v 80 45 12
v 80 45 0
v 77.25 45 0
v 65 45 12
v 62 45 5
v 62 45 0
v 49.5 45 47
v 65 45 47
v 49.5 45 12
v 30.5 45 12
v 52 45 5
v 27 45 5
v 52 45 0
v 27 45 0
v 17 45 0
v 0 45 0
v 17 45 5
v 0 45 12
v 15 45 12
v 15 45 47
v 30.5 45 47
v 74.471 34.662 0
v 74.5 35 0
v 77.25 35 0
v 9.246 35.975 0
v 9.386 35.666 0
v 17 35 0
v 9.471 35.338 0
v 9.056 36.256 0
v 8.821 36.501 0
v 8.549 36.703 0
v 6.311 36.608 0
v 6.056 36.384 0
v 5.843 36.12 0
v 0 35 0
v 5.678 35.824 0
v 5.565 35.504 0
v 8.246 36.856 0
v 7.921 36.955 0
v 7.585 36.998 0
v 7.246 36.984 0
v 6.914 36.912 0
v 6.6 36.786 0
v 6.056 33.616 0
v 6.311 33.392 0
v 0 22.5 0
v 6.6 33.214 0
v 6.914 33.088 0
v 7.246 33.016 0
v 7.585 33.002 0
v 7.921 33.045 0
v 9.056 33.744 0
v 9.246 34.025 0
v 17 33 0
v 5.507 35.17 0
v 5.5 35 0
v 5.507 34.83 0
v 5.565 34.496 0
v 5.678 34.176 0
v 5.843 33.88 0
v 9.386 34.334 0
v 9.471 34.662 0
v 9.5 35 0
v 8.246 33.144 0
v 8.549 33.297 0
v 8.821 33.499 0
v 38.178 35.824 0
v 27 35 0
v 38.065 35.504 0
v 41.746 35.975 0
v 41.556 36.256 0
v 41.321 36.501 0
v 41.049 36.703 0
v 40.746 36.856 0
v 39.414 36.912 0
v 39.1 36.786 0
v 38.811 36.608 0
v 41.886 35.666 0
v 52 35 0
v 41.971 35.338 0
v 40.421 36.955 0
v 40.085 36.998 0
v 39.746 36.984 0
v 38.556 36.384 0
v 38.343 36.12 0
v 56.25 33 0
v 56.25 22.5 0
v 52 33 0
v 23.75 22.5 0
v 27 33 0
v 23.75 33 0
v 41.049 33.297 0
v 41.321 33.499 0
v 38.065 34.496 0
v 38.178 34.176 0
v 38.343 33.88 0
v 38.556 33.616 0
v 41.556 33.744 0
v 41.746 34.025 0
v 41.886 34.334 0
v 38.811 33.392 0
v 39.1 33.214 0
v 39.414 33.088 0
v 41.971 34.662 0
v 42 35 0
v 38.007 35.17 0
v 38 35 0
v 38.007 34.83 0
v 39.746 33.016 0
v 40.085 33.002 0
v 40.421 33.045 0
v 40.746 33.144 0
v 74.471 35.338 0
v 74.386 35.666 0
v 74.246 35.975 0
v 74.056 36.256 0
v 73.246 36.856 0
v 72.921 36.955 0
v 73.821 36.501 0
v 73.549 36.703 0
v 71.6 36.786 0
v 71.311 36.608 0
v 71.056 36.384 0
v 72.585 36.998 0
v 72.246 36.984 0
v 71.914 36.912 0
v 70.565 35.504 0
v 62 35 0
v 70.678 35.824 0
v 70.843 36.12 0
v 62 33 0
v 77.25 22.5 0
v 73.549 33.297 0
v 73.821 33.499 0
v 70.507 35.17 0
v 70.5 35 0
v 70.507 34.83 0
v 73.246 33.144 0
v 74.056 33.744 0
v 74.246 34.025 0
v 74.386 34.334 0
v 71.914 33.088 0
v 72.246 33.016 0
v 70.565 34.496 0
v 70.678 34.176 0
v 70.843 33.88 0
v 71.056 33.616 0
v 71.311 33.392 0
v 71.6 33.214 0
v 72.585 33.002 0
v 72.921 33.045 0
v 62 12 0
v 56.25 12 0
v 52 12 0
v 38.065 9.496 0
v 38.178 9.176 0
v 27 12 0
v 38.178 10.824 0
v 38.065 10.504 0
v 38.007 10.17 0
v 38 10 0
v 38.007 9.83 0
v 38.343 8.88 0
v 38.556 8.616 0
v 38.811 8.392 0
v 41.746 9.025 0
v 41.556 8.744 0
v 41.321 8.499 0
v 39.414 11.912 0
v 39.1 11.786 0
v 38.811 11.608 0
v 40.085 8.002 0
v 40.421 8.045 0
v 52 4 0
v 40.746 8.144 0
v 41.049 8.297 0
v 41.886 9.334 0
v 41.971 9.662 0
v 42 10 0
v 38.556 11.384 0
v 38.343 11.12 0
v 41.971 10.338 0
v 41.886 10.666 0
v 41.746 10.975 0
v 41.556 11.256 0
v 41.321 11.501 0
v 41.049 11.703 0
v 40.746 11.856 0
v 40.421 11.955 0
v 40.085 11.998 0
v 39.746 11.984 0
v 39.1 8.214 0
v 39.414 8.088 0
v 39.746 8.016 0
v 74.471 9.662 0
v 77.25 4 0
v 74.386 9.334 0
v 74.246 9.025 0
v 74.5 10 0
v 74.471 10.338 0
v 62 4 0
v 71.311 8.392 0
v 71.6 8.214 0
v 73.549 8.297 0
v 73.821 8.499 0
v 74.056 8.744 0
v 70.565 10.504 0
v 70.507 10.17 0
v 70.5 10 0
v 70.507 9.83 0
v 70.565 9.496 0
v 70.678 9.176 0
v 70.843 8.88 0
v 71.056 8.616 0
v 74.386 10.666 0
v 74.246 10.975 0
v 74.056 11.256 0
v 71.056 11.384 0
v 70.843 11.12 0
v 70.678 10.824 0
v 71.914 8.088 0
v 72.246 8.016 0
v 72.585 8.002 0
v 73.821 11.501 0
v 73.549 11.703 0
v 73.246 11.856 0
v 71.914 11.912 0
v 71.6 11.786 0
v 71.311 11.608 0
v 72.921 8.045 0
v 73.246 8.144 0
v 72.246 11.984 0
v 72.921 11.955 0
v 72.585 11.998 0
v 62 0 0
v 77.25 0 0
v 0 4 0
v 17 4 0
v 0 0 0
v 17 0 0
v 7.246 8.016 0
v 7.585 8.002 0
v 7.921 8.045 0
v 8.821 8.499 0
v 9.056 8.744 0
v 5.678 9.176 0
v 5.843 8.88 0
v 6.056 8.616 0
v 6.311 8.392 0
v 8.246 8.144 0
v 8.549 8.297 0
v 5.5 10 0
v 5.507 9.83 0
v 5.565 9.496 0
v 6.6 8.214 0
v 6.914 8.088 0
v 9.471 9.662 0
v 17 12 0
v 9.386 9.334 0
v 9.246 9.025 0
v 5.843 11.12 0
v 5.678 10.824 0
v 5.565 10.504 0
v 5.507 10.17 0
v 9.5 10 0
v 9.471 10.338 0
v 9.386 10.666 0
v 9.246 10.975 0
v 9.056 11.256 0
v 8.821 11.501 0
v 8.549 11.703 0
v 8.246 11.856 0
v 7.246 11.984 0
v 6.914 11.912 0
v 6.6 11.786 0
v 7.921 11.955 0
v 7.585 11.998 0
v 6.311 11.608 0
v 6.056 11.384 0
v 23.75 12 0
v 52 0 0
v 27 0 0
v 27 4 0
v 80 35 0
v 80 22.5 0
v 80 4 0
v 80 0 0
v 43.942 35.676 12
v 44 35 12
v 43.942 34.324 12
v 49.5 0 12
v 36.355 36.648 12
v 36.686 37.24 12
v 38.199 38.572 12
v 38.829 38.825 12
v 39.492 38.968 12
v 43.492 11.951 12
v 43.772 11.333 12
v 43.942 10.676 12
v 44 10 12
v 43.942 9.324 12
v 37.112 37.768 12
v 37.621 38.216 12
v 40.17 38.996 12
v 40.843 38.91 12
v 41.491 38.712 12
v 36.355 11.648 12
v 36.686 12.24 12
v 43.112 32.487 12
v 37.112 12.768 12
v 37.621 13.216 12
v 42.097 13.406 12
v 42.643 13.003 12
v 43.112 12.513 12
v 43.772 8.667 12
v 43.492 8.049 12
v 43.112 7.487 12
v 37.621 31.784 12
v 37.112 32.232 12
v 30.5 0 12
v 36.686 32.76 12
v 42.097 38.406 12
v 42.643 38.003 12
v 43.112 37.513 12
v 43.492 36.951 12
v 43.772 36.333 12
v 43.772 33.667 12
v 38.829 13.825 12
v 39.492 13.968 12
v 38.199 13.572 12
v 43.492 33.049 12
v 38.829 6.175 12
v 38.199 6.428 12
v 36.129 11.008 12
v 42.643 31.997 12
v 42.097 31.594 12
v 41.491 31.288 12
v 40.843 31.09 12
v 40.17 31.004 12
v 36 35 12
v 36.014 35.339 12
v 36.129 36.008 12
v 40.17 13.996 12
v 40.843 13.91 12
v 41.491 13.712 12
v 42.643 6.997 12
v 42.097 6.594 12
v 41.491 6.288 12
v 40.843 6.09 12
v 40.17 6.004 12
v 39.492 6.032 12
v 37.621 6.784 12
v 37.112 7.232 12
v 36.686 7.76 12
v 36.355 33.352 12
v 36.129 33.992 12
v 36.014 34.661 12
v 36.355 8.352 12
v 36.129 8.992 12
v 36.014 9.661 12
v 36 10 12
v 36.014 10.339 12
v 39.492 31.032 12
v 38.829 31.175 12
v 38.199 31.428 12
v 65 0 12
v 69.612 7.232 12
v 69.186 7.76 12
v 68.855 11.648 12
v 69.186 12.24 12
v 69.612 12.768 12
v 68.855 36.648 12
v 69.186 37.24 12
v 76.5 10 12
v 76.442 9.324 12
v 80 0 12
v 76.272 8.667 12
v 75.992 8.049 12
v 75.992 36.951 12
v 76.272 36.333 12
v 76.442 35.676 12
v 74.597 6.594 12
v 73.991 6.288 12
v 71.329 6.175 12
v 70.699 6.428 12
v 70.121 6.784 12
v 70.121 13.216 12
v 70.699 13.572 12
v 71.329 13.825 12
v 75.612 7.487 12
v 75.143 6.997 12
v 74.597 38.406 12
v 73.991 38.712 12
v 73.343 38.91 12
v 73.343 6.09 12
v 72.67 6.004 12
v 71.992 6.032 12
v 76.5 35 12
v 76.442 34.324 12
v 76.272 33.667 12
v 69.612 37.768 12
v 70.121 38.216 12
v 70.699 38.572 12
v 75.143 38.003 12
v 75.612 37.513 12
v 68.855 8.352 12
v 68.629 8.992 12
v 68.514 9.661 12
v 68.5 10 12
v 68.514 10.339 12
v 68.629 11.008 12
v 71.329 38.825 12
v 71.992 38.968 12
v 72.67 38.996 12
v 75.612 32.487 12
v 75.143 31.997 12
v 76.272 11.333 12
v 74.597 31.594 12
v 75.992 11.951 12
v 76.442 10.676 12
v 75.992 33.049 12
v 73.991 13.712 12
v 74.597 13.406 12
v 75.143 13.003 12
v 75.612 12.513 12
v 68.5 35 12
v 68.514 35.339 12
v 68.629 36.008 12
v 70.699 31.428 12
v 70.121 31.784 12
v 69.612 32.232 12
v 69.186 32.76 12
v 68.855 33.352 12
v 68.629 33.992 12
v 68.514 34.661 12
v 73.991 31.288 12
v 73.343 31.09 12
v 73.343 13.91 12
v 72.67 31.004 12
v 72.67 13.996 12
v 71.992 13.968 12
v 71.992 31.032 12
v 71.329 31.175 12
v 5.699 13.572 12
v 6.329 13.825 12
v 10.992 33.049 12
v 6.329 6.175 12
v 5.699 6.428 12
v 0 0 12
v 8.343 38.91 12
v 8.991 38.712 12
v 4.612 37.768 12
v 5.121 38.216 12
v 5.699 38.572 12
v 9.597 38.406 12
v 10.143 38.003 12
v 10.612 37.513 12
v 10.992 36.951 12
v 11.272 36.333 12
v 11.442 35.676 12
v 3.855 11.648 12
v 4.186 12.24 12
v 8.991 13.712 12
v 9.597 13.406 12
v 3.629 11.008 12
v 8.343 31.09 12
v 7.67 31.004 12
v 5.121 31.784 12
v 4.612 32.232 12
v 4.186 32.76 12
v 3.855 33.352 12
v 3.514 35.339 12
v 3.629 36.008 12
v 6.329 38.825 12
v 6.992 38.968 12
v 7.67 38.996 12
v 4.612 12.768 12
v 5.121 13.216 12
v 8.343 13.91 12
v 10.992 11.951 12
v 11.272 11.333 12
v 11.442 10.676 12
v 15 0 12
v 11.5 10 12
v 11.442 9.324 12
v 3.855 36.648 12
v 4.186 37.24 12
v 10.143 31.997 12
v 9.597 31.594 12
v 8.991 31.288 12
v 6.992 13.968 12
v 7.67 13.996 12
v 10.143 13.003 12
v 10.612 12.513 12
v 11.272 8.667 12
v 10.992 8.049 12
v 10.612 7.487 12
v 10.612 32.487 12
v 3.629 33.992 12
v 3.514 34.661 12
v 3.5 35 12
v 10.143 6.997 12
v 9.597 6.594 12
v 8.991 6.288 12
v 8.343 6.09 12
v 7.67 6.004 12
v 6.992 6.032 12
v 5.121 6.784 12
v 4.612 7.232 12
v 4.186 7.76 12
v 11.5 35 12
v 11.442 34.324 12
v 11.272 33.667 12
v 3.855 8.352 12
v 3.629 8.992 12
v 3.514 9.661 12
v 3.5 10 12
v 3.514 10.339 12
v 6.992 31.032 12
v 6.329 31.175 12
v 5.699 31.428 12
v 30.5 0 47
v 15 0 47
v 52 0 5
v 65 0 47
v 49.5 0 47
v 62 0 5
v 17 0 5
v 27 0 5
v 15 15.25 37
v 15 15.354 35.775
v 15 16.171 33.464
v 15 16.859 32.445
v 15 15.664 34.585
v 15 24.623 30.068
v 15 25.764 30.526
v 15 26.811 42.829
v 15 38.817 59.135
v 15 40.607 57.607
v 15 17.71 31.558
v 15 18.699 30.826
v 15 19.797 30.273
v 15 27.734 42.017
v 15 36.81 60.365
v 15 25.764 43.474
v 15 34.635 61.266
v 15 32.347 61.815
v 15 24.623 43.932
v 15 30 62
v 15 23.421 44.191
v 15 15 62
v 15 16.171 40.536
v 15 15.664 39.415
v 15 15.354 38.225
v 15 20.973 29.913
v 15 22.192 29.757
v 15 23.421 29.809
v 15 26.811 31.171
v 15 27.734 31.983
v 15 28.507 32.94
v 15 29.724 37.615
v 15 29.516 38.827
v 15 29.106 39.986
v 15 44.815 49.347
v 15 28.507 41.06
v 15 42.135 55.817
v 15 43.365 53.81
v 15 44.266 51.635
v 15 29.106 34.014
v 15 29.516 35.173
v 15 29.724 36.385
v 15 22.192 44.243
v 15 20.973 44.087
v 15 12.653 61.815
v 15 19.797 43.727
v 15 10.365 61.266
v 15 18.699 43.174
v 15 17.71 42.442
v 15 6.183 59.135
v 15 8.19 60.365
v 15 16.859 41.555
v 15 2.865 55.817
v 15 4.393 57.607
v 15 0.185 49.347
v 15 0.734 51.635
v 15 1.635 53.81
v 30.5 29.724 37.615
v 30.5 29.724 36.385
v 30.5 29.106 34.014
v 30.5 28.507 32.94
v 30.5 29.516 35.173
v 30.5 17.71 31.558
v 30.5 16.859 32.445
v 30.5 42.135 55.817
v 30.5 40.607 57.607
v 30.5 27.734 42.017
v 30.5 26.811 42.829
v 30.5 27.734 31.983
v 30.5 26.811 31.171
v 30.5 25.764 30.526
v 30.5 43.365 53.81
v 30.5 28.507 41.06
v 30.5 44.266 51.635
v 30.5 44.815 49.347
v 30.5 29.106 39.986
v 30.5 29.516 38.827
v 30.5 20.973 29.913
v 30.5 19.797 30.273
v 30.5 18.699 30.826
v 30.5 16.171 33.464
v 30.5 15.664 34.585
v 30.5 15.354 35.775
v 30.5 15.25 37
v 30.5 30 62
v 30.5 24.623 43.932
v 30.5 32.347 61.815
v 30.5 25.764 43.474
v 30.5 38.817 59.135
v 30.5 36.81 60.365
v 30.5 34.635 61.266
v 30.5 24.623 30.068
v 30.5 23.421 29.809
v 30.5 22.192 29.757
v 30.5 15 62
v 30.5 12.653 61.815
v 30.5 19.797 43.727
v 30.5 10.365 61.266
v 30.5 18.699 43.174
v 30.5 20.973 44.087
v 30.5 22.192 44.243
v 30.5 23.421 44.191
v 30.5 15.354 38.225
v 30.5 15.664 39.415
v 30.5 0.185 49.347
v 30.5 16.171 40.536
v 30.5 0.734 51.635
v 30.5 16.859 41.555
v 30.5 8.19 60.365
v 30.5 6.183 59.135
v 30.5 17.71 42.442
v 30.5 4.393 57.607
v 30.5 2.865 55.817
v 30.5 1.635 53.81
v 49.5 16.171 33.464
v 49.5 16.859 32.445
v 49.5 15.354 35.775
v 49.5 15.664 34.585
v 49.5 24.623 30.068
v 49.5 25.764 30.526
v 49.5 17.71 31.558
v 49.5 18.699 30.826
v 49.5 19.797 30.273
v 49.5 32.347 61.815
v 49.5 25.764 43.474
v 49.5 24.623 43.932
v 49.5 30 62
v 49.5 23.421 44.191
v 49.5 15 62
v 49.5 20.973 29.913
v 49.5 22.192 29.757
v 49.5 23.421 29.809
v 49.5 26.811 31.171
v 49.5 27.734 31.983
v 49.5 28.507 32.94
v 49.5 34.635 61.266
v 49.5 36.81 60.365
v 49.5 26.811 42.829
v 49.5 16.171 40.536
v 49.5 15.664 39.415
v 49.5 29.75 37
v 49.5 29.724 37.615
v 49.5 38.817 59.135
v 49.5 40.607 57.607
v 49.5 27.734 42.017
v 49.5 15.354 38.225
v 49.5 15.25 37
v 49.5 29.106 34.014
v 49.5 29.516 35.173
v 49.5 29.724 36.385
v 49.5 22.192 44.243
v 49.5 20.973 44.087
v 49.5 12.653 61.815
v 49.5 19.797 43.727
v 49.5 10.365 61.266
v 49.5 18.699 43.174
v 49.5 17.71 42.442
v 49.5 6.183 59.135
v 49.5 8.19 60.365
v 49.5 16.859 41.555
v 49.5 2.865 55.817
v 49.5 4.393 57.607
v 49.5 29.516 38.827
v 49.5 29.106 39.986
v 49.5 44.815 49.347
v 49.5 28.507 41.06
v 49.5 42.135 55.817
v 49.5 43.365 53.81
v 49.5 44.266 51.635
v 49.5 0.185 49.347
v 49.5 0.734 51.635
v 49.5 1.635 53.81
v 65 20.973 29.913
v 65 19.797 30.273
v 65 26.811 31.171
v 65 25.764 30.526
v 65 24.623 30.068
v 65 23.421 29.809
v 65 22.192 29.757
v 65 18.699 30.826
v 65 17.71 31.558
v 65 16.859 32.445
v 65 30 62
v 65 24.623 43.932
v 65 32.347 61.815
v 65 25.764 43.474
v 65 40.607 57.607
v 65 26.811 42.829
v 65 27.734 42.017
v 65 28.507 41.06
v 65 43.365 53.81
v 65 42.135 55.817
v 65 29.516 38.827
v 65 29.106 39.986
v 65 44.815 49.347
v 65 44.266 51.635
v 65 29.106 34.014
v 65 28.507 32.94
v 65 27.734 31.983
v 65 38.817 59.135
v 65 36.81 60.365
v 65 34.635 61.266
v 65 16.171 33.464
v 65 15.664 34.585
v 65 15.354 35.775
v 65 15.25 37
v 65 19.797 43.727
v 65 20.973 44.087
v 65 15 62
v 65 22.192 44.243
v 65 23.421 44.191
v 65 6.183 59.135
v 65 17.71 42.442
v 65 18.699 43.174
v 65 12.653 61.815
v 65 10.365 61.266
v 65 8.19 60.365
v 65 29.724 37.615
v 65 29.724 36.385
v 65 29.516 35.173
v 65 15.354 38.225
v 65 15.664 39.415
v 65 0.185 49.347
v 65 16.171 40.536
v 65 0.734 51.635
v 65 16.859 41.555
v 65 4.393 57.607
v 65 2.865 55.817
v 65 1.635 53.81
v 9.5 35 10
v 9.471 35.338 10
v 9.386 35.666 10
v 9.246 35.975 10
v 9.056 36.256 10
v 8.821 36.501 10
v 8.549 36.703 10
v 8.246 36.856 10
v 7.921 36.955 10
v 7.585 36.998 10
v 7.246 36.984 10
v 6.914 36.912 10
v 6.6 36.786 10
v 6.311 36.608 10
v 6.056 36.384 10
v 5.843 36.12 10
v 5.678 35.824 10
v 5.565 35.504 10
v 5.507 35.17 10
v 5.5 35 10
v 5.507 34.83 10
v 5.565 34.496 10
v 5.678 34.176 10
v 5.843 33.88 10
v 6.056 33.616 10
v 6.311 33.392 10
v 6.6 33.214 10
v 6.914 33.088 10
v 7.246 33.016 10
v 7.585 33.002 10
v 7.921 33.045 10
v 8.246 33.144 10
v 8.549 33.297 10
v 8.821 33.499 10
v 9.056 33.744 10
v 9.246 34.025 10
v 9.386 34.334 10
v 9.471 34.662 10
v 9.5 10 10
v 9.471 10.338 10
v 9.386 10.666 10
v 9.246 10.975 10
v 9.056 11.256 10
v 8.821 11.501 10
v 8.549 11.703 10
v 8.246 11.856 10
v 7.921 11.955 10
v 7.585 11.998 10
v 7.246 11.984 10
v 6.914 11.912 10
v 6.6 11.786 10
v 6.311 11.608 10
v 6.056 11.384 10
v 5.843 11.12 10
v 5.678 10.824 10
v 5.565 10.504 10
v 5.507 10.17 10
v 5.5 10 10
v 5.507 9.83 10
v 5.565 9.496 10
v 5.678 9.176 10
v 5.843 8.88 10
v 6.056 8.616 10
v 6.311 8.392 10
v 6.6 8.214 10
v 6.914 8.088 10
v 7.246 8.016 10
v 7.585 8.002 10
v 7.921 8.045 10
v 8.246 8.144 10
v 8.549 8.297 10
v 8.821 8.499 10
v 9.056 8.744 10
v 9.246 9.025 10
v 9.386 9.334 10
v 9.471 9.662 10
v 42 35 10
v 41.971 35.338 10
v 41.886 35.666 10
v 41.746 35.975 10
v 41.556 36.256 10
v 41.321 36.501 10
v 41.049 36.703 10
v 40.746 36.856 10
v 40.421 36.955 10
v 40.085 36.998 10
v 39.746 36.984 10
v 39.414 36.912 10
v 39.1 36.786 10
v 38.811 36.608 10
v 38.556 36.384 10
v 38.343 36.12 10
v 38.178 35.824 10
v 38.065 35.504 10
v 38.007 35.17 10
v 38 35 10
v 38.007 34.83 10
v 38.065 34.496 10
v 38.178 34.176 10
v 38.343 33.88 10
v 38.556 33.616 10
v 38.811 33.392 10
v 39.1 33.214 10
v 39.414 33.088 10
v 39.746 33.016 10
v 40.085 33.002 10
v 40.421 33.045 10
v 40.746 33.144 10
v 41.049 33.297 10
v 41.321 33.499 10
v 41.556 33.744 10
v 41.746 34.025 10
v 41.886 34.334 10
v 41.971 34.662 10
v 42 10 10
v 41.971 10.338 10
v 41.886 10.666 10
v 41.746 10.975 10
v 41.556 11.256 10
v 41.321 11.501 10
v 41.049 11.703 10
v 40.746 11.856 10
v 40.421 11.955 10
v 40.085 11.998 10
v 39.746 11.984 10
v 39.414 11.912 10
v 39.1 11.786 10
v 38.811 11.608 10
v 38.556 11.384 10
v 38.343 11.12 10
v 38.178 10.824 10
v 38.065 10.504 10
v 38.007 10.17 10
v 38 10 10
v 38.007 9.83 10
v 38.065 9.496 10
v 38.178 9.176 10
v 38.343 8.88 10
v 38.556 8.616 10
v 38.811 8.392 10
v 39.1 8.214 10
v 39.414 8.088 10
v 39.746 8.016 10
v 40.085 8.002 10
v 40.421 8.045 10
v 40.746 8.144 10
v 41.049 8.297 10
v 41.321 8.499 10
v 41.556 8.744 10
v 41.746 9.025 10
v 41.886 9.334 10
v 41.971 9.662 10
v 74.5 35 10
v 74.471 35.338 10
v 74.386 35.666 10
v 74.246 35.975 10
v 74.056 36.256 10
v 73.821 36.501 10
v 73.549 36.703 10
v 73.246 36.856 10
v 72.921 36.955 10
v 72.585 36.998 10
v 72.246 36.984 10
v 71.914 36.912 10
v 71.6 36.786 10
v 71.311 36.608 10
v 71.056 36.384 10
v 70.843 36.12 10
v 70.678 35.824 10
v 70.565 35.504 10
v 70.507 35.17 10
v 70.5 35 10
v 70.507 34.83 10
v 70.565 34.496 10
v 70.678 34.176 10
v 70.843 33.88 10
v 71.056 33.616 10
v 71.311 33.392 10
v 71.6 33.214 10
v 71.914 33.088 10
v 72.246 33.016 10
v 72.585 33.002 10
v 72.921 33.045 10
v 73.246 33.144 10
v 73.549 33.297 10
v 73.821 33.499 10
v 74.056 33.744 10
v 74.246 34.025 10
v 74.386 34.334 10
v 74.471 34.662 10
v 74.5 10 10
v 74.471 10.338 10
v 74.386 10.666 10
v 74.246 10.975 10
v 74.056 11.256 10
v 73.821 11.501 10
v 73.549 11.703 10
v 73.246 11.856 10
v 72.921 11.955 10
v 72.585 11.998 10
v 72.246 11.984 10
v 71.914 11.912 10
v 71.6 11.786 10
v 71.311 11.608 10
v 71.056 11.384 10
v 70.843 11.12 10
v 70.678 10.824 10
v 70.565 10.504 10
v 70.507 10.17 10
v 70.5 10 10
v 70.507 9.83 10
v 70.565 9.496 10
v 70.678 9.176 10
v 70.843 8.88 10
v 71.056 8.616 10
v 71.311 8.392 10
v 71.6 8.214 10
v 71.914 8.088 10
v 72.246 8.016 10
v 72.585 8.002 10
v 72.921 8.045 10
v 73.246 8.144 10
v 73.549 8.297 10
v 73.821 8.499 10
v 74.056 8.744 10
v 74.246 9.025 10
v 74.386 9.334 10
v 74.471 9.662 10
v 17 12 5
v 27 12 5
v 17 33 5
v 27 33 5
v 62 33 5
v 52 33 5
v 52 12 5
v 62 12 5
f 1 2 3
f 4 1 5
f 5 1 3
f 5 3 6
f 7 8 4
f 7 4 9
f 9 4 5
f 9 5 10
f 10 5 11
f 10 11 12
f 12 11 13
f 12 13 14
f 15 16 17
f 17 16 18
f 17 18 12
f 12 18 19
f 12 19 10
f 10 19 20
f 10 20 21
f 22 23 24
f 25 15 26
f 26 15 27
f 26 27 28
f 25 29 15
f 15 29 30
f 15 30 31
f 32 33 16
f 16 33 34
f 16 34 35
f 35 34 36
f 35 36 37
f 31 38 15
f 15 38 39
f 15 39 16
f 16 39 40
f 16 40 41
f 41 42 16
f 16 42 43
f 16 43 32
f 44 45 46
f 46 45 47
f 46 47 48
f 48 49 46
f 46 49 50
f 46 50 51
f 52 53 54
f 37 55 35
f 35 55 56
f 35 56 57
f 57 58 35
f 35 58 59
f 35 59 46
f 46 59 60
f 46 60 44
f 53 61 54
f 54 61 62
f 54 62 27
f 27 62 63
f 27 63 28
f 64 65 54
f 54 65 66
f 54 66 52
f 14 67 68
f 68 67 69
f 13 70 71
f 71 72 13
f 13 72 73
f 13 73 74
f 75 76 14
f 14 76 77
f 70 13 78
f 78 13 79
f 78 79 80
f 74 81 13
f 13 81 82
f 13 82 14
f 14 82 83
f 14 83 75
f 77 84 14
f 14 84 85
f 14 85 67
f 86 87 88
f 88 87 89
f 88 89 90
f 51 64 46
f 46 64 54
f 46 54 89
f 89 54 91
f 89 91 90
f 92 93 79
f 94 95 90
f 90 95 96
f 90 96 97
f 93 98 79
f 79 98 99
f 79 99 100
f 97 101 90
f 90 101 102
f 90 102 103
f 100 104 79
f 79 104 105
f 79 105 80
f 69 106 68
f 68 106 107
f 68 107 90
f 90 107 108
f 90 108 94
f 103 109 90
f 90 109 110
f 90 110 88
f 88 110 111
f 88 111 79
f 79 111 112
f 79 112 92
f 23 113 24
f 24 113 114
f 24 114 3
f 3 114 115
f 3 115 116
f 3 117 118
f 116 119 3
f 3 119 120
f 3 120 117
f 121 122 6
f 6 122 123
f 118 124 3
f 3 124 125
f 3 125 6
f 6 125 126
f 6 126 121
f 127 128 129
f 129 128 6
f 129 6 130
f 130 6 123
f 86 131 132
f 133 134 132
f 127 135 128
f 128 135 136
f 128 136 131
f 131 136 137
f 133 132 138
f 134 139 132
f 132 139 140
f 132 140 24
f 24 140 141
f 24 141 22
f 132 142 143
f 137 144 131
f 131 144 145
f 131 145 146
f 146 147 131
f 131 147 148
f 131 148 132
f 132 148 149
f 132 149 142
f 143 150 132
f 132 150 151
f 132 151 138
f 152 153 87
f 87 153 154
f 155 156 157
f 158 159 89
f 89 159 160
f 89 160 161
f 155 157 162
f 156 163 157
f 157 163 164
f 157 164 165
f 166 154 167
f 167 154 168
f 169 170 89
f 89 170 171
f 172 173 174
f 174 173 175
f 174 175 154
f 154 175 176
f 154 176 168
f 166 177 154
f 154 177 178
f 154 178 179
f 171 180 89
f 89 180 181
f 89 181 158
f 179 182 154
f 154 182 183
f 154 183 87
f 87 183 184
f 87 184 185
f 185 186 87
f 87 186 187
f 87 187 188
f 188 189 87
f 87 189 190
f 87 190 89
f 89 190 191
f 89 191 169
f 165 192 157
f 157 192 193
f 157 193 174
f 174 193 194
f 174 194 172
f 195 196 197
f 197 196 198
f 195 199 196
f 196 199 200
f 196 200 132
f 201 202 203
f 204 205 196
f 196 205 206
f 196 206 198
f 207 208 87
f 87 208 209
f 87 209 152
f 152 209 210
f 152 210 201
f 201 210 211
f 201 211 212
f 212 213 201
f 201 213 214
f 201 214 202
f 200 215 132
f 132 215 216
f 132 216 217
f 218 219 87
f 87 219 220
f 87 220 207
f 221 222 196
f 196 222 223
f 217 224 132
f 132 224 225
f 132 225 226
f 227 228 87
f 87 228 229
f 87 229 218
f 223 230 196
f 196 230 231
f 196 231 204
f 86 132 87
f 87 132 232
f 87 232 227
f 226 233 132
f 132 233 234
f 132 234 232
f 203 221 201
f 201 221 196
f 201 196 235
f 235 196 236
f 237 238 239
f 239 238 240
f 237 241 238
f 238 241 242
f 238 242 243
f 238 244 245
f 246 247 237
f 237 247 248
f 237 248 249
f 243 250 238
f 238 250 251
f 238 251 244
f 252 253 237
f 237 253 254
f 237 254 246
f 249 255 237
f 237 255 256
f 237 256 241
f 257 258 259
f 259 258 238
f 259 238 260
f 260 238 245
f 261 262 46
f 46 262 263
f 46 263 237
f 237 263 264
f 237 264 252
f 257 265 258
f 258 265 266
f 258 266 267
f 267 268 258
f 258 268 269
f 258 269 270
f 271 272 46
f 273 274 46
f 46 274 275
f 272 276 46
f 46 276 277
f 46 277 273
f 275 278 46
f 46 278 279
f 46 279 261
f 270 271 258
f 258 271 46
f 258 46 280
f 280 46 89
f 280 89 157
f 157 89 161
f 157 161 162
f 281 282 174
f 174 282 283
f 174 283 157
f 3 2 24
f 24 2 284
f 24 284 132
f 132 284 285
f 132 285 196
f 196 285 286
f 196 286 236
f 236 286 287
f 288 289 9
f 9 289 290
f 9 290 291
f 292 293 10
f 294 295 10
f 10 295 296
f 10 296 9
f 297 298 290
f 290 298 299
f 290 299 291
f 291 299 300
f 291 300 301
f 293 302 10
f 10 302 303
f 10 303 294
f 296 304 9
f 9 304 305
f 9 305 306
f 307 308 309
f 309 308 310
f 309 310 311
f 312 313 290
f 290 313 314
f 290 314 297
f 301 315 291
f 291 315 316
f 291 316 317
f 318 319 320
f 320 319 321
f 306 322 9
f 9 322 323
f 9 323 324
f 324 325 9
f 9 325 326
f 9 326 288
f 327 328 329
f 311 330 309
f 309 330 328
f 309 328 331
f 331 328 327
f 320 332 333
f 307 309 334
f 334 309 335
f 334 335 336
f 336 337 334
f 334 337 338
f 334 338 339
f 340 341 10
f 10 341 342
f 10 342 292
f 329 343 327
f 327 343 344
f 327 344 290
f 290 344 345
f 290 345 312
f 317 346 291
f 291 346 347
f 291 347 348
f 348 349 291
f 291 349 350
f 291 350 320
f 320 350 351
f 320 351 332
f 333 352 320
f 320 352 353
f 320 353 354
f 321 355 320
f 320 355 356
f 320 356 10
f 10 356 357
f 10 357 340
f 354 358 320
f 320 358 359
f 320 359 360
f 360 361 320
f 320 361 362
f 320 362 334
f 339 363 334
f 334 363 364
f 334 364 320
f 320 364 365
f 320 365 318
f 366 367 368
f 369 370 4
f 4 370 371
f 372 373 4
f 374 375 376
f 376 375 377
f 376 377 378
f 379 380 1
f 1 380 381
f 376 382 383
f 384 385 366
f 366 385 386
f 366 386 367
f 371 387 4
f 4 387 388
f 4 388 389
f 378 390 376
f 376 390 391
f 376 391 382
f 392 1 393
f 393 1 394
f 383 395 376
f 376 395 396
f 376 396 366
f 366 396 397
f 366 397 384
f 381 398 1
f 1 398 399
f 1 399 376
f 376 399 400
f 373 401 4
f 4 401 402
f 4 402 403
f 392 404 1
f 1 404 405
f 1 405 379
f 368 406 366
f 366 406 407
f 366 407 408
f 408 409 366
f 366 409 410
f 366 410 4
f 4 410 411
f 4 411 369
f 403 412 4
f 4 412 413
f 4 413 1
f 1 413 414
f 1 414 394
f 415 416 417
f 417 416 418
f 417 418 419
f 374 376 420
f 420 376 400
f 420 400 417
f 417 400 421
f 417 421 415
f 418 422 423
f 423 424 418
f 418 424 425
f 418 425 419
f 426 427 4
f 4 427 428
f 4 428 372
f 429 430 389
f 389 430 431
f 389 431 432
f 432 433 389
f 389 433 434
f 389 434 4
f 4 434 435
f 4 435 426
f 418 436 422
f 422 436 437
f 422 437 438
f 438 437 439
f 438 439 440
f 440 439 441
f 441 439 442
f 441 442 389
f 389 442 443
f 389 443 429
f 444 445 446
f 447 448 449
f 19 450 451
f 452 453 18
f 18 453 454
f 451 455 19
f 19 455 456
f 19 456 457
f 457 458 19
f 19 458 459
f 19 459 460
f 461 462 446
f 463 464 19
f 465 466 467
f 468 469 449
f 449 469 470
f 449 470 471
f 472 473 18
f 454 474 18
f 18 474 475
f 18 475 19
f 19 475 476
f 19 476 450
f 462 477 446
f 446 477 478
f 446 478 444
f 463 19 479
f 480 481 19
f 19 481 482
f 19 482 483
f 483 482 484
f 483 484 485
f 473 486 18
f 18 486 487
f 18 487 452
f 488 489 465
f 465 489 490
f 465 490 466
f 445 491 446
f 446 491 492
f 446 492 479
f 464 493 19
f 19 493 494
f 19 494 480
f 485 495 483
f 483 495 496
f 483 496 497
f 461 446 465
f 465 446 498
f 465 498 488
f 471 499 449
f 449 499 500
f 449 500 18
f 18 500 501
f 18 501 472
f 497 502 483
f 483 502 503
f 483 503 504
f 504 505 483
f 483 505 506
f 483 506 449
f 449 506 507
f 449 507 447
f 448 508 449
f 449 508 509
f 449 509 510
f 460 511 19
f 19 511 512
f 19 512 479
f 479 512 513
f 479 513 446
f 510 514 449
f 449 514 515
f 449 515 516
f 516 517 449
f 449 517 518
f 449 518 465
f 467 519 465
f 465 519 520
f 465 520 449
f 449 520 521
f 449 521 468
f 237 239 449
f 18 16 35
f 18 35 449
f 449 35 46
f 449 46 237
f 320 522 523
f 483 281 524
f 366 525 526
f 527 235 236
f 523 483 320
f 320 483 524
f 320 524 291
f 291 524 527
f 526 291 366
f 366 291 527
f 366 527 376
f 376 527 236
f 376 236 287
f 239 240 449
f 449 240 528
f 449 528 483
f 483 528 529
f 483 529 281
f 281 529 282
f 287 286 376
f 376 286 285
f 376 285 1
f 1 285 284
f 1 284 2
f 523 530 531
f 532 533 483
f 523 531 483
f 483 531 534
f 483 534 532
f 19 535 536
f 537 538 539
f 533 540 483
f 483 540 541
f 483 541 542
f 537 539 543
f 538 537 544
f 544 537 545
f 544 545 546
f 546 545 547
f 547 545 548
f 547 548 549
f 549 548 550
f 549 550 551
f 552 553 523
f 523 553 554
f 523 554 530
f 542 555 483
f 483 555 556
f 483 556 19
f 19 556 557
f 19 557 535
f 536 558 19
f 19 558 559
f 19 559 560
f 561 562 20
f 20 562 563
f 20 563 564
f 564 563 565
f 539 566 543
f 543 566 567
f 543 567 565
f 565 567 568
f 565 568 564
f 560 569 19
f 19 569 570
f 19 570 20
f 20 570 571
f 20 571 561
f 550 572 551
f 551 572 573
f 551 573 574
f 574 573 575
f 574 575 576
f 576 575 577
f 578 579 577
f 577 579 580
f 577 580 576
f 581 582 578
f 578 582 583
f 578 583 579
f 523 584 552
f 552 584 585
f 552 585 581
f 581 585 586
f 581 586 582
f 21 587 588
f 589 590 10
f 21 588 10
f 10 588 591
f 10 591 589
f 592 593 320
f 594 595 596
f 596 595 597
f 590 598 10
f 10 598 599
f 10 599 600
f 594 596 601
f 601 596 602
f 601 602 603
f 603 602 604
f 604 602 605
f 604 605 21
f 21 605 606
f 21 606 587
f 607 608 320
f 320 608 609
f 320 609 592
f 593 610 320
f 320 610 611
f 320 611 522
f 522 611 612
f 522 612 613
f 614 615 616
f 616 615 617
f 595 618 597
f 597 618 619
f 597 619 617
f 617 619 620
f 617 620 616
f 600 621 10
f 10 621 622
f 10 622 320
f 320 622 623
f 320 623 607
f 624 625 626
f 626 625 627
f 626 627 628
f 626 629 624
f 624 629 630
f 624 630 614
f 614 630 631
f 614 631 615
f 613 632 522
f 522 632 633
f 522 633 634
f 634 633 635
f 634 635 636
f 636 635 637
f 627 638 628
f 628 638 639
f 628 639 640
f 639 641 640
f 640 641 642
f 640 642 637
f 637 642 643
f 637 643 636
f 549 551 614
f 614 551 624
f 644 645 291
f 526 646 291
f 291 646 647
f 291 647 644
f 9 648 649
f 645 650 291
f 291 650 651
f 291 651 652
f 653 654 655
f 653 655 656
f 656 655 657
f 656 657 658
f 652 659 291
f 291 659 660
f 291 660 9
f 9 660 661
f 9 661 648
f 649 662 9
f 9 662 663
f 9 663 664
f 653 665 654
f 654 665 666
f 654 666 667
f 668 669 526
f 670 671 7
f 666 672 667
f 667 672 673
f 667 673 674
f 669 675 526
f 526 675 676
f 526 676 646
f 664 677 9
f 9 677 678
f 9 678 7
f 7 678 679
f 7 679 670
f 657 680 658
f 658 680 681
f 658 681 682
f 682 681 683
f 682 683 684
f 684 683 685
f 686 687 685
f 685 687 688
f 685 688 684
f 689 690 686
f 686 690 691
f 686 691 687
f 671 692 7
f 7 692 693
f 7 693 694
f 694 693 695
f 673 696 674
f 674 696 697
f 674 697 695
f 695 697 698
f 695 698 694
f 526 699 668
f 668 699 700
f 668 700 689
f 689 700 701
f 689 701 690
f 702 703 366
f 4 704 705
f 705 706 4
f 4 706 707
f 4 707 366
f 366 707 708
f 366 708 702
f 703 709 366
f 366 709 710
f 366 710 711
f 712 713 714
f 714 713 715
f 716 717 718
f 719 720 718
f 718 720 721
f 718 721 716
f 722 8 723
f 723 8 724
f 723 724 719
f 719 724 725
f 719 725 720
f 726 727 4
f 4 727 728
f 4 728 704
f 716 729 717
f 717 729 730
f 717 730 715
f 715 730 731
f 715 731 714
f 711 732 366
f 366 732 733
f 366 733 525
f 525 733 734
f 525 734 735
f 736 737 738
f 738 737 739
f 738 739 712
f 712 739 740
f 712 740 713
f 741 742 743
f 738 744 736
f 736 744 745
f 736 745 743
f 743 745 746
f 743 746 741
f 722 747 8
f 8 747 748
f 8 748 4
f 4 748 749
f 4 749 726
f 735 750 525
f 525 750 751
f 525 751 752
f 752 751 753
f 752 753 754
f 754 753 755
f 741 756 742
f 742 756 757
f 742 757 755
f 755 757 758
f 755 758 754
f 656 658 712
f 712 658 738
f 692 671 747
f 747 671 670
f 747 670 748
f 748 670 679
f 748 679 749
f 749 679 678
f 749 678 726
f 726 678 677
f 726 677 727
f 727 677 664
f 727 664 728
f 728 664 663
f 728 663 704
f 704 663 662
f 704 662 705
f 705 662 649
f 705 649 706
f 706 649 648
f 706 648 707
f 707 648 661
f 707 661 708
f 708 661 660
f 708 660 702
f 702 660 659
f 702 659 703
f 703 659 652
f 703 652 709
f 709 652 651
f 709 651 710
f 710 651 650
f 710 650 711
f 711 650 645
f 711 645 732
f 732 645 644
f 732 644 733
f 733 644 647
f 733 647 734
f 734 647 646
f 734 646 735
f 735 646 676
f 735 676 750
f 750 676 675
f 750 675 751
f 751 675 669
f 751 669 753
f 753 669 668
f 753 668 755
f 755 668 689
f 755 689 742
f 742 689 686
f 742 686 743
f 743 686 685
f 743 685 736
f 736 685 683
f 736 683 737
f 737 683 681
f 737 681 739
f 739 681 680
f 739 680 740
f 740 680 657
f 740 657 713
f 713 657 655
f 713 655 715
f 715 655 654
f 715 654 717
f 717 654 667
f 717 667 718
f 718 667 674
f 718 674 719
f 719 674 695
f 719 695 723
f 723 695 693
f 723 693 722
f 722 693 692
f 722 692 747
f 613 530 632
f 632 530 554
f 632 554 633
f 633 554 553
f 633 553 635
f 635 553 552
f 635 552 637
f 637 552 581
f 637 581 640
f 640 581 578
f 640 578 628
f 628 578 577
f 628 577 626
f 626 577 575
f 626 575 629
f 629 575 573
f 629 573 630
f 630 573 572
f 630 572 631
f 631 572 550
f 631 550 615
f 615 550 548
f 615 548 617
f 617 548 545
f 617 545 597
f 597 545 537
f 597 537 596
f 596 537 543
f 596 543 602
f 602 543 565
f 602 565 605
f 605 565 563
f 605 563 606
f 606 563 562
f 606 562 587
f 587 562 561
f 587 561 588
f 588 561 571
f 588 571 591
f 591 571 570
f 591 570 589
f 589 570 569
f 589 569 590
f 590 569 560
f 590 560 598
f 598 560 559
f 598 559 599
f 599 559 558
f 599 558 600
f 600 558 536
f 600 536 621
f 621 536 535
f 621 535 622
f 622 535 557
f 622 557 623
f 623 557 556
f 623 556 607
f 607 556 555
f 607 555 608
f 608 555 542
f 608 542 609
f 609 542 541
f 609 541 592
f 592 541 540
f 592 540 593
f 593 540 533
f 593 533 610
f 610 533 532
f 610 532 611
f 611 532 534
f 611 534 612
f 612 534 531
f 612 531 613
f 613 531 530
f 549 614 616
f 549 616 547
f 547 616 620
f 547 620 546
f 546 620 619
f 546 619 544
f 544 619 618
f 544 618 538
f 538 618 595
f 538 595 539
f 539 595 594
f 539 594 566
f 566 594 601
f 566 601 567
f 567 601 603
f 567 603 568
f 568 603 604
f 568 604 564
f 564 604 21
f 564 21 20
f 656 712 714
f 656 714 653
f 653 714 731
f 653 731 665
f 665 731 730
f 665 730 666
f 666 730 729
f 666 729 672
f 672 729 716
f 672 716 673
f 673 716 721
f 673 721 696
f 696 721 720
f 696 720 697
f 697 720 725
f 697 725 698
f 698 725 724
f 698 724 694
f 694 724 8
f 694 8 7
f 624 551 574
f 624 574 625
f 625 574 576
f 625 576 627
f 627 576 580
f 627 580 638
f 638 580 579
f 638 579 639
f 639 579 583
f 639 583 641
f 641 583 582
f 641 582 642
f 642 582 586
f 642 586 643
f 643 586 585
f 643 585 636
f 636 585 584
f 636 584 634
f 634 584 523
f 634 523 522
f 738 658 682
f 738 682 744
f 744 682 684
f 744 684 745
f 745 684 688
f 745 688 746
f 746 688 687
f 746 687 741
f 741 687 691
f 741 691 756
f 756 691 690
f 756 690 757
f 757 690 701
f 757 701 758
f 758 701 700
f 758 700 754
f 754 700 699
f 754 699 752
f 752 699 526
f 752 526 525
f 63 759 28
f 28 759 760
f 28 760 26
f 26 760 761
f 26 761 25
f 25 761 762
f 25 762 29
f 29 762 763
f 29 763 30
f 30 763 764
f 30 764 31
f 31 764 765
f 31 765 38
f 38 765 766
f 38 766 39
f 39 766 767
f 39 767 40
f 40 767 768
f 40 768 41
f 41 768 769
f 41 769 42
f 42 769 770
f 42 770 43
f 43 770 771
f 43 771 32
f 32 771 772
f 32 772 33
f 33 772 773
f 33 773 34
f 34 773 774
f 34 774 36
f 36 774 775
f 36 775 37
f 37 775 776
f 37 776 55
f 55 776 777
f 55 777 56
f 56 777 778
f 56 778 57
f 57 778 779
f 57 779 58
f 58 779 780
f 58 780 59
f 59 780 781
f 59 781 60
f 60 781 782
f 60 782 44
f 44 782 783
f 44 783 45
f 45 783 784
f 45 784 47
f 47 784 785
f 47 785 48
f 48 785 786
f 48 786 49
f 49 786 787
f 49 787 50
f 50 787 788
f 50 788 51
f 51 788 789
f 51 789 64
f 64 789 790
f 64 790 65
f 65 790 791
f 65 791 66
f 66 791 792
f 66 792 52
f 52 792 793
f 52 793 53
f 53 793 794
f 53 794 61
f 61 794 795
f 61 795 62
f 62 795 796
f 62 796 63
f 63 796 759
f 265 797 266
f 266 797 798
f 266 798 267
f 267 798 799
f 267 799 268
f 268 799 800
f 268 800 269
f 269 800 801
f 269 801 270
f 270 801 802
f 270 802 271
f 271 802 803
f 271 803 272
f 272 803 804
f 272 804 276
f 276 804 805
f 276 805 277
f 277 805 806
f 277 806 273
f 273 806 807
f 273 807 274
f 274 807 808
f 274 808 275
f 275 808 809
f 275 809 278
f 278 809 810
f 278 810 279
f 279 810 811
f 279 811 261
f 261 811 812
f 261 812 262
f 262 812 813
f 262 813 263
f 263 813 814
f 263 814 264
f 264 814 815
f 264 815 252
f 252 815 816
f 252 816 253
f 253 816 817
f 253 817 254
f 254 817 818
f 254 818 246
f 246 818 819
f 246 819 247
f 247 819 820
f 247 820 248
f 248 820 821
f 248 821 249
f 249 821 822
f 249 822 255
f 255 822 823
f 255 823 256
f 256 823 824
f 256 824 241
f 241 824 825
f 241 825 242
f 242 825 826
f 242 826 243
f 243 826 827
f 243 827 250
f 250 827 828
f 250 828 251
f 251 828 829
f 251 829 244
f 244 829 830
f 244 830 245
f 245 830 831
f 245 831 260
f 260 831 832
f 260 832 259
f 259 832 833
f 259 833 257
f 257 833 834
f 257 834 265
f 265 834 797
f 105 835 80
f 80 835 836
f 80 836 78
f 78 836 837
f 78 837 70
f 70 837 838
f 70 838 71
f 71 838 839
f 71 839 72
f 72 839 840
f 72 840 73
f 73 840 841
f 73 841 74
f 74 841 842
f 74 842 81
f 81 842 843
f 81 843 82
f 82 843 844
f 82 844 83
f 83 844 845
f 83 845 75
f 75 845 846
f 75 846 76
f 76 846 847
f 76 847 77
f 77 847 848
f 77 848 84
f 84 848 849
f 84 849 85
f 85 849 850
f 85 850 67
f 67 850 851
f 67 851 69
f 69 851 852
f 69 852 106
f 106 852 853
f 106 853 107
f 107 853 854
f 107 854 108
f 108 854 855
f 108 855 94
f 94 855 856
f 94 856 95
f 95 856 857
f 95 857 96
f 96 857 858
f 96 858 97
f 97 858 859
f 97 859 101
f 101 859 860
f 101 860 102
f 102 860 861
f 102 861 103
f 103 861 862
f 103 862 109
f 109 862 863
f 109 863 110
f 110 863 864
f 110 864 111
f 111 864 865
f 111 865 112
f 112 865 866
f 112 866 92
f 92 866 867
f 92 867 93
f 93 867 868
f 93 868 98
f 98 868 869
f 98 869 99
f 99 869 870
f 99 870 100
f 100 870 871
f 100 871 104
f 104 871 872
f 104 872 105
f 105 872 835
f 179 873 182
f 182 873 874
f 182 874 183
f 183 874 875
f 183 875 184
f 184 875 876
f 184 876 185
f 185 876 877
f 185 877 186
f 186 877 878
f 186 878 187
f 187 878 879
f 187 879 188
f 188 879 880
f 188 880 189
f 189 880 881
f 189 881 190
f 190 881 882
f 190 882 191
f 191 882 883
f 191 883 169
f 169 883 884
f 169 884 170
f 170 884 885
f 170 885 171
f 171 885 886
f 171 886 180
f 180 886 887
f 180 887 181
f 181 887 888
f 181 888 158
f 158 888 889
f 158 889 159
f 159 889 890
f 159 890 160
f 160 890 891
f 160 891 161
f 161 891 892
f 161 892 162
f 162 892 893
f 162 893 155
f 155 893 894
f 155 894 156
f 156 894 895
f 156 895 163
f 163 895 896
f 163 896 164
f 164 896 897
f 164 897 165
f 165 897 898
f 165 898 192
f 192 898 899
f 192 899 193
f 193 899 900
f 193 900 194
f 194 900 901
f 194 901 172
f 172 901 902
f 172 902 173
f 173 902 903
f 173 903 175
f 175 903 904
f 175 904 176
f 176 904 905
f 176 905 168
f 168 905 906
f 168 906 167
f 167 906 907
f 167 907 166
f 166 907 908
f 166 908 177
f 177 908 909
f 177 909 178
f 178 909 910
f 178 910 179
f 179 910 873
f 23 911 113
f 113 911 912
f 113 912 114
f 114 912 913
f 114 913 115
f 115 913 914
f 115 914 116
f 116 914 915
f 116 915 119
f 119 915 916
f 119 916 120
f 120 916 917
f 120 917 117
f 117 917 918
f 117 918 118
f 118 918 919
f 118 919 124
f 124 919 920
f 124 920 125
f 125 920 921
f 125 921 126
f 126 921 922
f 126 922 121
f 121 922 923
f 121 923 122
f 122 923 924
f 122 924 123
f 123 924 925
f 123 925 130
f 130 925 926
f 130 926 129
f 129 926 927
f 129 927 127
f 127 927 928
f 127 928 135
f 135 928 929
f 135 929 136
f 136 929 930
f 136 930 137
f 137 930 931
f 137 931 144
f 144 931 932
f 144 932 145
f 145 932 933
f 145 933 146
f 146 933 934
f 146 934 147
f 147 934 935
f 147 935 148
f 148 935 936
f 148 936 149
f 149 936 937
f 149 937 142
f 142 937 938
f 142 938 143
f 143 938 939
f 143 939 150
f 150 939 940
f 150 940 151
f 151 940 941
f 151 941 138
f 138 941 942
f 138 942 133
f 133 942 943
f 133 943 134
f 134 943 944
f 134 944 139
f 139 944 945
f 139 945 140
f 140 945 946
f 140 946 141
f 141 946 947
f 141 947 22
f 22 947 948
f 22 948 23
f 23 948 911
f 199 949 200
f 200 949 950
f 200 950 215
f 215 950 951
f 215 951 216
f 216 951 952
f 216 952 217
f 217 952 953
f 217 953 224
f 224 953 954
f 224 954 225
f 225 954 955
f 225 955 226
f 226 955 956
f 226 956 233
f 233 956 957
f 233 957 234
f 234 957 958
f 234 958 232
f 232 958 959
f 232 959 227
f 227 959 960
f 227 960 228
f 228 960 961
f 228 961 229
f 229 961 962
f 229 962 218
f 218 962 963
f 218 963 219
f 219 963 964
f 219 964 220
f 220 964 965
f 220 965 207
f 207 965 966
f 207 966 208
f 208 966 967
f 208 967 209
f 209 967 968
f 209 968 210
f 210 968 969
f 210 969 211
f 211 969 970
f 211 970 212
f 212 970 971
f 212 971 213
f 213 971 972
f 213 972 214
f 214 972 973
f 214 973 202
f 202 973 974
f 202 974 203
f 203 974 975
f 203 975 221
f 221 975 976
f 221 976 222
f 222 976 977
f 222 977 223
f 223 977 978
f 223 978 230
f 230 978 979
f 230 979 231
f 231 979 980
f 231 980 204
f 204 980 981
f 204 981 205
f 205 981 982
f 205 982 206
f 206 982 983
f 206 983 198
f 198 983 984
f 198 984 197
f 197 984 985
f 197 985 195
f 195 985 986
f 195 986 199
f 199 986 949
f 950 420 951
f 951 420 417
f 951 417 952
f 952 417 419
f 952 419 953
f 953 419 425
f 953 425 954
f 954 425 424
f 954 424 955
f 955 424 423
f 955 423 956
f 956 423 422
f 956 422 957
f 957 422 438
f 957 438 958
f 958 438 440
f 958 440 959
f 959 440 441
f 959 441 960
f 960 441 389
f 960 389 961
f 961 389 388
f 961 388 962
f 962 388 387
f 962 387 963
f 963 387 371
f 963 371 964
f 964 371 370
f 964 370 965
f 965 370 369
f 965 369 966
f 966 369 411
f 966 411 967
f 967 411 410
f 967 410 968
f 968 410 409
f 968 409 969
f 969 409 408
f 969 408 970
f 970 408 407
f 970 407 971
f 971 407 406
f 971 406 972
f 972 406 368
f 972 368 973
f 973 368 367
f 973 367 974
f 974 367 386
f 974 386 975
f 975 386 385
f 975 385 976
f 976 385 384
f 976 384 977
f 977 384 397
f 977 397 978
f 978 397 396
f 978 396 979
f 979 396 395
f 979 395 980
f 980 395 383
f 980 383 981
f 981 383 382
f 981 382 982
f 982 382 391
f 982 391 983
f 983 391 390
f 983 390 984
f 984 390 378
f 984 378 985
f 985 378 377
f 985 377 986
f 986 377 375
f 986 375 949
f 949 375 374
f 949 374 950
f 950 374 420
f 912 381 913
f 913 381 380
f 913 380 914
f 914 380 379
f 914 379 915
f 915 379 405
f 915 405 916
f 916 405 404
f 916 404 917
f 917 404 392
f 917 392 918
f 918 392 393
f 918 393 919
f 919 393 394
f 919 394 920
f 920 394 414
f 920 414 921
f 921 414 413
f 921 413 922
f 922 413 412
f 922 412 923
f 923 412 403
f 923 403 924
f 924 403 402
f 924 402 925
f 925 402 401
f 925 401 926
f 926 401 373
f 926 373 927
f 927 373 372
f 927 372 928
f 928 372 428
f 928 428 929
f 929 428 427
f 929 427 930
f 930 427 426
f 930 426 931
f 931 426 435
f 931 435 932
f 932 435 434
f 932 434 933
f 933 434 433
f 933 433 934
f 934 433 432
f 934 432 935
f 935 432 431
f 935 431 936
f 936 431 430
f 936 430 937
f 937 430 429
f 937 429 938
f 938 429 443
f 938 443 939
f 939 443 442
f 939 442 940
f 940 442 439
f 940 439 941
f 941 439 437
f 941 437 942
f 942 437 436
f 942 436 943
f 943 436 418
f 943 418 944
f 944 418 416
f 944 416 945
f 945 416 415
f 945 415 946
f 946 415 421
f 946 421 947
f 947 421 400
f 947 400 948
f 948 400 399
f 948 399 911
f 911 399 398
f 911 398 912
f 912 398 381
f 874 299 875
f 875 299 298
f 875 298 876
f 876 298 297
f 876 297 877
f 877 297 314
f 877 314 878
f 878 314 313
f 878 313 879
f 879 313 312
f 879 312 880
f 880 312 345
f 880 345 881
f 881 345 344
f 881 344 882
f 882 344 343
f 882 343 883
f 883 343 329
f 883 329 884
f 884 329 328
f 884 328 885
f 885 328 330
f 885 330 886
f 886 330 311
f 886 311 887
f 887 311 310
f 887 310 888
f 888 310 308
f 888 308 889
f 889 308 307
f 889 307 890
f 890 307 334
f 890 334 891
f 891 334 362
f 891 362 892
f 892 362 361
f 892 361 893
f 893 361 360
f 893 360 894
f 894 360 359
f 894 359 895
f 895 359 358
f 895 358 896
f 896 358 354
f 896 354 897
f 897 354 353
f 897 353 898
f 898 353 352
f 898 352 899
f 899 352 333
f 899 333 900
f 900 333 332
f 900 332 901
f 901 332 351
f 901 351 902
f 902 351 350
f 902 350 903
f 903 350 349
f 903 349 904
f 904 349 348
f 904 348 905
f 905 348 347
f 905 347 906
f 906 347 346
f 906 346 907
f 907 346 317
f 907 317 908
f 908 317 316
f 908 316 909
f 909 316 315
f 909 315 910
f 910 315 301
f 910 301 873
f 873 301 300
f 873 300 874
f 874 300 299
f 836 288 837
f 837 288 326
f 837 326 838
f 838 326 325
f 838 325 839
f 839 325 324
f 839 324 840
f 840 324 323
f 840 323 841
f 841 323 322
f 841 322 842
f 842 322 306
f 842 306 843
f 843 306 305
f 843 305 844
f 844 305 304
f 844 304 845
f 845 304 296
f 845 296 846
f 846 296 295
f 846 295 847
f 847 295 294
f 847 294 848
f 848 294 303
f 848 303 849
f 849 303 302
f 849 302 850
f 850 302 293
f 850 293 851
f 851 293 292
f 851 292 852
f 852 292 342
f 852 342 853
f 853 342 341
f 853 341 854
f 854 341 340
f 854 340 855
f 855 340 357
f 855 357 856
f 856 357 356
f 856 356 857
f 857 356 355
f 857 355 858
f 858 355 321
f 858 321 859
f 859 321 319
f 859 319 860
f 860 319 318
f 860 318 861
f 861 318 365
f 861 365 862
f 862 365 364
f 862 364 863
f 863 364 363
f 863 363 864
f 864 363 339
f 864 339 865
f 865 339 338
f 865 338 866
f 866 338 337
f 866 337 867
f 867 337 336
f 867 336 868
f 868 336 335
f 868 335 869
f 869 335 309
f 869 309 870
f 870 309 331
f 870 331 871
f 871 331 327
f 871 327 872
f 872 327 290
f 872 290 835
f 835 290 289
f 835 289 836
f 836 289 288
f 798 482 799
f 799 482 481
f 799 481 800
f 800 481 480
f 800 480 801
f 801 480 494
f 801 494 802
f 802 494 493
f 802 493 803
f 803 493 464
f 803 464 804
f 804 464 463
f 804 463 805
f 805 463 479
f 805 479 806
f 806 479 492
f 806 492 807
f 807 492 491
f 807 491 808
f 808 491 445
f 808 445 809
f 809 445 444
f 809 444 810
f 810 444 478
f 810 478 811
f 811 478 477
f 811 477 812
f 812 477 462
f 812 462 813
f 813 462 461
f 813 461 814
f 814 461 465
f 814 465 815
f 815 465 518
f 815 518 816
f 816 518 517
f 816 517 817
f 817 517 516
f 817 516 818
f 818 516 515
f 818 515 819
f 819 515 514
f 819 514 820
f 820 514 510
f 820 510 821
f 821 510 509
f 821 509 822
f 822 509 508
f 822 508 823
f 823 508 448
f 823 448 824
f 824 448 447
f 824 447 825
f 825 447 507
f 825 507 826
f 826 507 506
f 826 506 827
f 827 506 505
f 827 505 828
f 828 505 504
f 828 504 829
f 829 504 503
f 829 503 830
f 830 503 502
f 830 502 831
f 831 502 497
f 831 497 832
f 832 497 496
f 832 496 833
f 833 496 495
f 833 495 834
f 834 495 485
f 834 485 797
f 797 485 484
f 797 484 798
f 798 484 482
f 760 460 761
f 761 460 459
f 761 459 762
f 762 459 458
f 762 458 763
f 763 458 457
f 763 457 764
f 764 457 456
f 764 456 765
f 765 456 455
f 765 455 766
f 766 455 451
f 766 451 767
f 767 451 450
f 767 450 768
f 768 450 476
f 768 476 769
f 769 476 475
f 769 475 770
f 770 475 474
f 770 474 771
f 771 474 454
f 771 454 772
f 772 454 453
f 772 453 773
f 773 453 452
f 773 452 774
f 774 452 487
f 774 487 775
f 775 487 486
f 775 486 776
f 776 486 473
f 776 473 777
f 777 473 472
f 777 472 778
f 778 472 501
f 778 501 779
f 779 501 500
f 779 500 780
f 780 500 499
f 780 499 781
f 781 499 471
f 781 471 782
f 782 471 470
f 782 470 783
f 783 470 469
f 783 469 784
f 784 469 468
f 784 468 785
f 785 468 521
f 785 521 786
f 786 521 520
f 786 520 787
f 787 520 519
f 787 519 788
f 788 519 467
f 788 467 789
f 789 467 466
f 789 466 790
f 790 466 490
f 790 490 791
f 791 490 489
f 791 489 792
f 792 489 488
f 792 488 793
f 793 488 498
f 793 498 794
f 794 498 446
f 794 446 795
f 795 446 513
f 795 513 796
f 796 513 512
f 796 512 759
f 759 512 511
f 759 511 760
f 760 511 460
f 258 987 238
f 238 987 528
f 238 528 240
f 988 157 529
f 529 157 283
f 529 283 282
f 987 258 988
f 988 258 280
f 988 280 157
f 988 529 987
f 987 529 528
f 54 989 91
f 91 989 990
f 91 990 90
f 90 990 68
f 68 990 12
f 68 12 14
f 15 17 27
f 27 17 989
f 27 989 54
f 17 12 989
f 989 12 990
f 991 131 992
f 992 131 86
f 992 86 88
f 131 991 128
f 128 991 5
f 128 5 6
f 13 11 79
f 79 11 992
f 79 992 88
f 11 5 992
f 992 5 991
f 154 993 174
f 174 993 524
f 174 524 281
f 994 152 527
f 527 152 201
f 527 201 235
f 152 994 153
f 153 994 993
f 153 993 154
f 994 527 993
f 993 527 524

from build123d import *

# Parameters (mm, degrees)
SKETCH1_W           = 80
SKETCH1_H           = 45
BOSS_EXTRUDE1_DEPTH = 12
SKETCH2_W           = 15.5
SKETCH2_H           = 45
BOSS_EXTRUDE2_DEPTH = 50
SKETCH3_R           = 7.25
CUT_EXTRUDE1_DEPTH  = 50
FILLET1_R           = 15
SKETCH5_R           = 2
CUT_EXTRUDE2_DEPTH  = 50
CHAMFER1_SIZE       = 2
SKETCH6_W           = 10
SKETCH6_H           = 12
CUT_EXTRUDE3_DEPTH  = 5


with BuildPart() as part:
    # Sketch1 → Boss-Extrude1 (new body)
    with BuildSketch(Plane.XY):
        with Locations((40, 22.5)):
            Rectangle(SKETCH1_W, SKETCH1_H)
    extrude(amount=BOSS_EXTRUDE1_DEPTH)

    # Sketch2 → Boss-Extrude2 (add)
    with BuildSketch(Plane.XY.offset(12)):
        with Locations((22.75, 22.5)):
            Rectangle(SKETCH2_W, SKETCH2_H)
        with Locations((57.25, 22.5)):
            Rectangle(SKETCH2_W, SKETCH2_H)
    extrude(amount=BOSS_EXTRUDE2_DEPTH)

    # Sketch3 → Cut-Extrude1 (cut)
    with BuildSketch(Plane.ZY.offset(-15)):
        with Locations(Location((37, 22.5, 0), (0, 0, 270))):
            Circle(SKETCH3_R)
    extrude(amount=-CUT_EXTRUDE1_DEPTH, mode=Mode.SUBTRACT)

    # Fillet1
    fillet1_edges = [part.edges().sort_by_distance(p)[0] for p in [
        (22.75, 0, 62),
        (22.75, 45, 62),
        (57.25, 0, 62),
        (57.25, 45, 62),
    ]]
    fillet(fillet1_edges, radius=FILLET1_R)

    # Sketch5 → Cut-Extrude2 (cut)
    with BuildSketch(Plane.XY.offset(12)):
        with Locations((7.5, 35)):
            Circle(SKETCH5_R)
        with Locations((7.5, 10)):
            Circle(SKETCH5_R)
        with Locations((40, 35)):
            Circle(SKETCH5_R)
        with Locations((40, 10)):
            Circle(SKETCH5_R)
        with Locations((72.5, 35)):
            Circle(SKETCH5_R)
        with Locations((72.5, 10)):
            Circle(SKETCH5_R)
    extrude(amount=-CUT_EXTRUDE2_DEPTH, mode=Mode.SUBTRACT)

    # Chamfer1
    chamfer1_edges = [part.edges().sort_by_distance(p)[0] for p in [
        (5.5, 35, 12),
        (70.5, 10, 12),
        (70.5, 35, 12),
        (38, 10, 12),
        (38, 35, 12),
        (5.5, 10, 12),
    ]]
    chamfer(chamfer1_edges, length=CHAMFER1_SIZE)

    # Sketch6 → Cut-Extrude3 (cut)
    with BuildSketch(Plane(origin=(0, 0, 0), x_dir=(-1, 0, 0), z_dir=(0, 0, -1))):
        with Locations((-22, 6)):
            Rectangle(SKETCH6_W, SKETCH6_H)
        with Locations((-57, 6)):
            Rectangle(SKETCH6_W, SKETCH6_H)
        with Locations((-57, 39)):
            Rectangle(SKETCH6_W, SKETCH6_H)
        with Locations((-22, 39)):
            Rectangle(SKETCH6_W, SKETCH6_H)
    extrude(amount=-CUT_EXTRUDE3_DEPTH, mode=Mode.SUBTRACT)


solid = part.part
